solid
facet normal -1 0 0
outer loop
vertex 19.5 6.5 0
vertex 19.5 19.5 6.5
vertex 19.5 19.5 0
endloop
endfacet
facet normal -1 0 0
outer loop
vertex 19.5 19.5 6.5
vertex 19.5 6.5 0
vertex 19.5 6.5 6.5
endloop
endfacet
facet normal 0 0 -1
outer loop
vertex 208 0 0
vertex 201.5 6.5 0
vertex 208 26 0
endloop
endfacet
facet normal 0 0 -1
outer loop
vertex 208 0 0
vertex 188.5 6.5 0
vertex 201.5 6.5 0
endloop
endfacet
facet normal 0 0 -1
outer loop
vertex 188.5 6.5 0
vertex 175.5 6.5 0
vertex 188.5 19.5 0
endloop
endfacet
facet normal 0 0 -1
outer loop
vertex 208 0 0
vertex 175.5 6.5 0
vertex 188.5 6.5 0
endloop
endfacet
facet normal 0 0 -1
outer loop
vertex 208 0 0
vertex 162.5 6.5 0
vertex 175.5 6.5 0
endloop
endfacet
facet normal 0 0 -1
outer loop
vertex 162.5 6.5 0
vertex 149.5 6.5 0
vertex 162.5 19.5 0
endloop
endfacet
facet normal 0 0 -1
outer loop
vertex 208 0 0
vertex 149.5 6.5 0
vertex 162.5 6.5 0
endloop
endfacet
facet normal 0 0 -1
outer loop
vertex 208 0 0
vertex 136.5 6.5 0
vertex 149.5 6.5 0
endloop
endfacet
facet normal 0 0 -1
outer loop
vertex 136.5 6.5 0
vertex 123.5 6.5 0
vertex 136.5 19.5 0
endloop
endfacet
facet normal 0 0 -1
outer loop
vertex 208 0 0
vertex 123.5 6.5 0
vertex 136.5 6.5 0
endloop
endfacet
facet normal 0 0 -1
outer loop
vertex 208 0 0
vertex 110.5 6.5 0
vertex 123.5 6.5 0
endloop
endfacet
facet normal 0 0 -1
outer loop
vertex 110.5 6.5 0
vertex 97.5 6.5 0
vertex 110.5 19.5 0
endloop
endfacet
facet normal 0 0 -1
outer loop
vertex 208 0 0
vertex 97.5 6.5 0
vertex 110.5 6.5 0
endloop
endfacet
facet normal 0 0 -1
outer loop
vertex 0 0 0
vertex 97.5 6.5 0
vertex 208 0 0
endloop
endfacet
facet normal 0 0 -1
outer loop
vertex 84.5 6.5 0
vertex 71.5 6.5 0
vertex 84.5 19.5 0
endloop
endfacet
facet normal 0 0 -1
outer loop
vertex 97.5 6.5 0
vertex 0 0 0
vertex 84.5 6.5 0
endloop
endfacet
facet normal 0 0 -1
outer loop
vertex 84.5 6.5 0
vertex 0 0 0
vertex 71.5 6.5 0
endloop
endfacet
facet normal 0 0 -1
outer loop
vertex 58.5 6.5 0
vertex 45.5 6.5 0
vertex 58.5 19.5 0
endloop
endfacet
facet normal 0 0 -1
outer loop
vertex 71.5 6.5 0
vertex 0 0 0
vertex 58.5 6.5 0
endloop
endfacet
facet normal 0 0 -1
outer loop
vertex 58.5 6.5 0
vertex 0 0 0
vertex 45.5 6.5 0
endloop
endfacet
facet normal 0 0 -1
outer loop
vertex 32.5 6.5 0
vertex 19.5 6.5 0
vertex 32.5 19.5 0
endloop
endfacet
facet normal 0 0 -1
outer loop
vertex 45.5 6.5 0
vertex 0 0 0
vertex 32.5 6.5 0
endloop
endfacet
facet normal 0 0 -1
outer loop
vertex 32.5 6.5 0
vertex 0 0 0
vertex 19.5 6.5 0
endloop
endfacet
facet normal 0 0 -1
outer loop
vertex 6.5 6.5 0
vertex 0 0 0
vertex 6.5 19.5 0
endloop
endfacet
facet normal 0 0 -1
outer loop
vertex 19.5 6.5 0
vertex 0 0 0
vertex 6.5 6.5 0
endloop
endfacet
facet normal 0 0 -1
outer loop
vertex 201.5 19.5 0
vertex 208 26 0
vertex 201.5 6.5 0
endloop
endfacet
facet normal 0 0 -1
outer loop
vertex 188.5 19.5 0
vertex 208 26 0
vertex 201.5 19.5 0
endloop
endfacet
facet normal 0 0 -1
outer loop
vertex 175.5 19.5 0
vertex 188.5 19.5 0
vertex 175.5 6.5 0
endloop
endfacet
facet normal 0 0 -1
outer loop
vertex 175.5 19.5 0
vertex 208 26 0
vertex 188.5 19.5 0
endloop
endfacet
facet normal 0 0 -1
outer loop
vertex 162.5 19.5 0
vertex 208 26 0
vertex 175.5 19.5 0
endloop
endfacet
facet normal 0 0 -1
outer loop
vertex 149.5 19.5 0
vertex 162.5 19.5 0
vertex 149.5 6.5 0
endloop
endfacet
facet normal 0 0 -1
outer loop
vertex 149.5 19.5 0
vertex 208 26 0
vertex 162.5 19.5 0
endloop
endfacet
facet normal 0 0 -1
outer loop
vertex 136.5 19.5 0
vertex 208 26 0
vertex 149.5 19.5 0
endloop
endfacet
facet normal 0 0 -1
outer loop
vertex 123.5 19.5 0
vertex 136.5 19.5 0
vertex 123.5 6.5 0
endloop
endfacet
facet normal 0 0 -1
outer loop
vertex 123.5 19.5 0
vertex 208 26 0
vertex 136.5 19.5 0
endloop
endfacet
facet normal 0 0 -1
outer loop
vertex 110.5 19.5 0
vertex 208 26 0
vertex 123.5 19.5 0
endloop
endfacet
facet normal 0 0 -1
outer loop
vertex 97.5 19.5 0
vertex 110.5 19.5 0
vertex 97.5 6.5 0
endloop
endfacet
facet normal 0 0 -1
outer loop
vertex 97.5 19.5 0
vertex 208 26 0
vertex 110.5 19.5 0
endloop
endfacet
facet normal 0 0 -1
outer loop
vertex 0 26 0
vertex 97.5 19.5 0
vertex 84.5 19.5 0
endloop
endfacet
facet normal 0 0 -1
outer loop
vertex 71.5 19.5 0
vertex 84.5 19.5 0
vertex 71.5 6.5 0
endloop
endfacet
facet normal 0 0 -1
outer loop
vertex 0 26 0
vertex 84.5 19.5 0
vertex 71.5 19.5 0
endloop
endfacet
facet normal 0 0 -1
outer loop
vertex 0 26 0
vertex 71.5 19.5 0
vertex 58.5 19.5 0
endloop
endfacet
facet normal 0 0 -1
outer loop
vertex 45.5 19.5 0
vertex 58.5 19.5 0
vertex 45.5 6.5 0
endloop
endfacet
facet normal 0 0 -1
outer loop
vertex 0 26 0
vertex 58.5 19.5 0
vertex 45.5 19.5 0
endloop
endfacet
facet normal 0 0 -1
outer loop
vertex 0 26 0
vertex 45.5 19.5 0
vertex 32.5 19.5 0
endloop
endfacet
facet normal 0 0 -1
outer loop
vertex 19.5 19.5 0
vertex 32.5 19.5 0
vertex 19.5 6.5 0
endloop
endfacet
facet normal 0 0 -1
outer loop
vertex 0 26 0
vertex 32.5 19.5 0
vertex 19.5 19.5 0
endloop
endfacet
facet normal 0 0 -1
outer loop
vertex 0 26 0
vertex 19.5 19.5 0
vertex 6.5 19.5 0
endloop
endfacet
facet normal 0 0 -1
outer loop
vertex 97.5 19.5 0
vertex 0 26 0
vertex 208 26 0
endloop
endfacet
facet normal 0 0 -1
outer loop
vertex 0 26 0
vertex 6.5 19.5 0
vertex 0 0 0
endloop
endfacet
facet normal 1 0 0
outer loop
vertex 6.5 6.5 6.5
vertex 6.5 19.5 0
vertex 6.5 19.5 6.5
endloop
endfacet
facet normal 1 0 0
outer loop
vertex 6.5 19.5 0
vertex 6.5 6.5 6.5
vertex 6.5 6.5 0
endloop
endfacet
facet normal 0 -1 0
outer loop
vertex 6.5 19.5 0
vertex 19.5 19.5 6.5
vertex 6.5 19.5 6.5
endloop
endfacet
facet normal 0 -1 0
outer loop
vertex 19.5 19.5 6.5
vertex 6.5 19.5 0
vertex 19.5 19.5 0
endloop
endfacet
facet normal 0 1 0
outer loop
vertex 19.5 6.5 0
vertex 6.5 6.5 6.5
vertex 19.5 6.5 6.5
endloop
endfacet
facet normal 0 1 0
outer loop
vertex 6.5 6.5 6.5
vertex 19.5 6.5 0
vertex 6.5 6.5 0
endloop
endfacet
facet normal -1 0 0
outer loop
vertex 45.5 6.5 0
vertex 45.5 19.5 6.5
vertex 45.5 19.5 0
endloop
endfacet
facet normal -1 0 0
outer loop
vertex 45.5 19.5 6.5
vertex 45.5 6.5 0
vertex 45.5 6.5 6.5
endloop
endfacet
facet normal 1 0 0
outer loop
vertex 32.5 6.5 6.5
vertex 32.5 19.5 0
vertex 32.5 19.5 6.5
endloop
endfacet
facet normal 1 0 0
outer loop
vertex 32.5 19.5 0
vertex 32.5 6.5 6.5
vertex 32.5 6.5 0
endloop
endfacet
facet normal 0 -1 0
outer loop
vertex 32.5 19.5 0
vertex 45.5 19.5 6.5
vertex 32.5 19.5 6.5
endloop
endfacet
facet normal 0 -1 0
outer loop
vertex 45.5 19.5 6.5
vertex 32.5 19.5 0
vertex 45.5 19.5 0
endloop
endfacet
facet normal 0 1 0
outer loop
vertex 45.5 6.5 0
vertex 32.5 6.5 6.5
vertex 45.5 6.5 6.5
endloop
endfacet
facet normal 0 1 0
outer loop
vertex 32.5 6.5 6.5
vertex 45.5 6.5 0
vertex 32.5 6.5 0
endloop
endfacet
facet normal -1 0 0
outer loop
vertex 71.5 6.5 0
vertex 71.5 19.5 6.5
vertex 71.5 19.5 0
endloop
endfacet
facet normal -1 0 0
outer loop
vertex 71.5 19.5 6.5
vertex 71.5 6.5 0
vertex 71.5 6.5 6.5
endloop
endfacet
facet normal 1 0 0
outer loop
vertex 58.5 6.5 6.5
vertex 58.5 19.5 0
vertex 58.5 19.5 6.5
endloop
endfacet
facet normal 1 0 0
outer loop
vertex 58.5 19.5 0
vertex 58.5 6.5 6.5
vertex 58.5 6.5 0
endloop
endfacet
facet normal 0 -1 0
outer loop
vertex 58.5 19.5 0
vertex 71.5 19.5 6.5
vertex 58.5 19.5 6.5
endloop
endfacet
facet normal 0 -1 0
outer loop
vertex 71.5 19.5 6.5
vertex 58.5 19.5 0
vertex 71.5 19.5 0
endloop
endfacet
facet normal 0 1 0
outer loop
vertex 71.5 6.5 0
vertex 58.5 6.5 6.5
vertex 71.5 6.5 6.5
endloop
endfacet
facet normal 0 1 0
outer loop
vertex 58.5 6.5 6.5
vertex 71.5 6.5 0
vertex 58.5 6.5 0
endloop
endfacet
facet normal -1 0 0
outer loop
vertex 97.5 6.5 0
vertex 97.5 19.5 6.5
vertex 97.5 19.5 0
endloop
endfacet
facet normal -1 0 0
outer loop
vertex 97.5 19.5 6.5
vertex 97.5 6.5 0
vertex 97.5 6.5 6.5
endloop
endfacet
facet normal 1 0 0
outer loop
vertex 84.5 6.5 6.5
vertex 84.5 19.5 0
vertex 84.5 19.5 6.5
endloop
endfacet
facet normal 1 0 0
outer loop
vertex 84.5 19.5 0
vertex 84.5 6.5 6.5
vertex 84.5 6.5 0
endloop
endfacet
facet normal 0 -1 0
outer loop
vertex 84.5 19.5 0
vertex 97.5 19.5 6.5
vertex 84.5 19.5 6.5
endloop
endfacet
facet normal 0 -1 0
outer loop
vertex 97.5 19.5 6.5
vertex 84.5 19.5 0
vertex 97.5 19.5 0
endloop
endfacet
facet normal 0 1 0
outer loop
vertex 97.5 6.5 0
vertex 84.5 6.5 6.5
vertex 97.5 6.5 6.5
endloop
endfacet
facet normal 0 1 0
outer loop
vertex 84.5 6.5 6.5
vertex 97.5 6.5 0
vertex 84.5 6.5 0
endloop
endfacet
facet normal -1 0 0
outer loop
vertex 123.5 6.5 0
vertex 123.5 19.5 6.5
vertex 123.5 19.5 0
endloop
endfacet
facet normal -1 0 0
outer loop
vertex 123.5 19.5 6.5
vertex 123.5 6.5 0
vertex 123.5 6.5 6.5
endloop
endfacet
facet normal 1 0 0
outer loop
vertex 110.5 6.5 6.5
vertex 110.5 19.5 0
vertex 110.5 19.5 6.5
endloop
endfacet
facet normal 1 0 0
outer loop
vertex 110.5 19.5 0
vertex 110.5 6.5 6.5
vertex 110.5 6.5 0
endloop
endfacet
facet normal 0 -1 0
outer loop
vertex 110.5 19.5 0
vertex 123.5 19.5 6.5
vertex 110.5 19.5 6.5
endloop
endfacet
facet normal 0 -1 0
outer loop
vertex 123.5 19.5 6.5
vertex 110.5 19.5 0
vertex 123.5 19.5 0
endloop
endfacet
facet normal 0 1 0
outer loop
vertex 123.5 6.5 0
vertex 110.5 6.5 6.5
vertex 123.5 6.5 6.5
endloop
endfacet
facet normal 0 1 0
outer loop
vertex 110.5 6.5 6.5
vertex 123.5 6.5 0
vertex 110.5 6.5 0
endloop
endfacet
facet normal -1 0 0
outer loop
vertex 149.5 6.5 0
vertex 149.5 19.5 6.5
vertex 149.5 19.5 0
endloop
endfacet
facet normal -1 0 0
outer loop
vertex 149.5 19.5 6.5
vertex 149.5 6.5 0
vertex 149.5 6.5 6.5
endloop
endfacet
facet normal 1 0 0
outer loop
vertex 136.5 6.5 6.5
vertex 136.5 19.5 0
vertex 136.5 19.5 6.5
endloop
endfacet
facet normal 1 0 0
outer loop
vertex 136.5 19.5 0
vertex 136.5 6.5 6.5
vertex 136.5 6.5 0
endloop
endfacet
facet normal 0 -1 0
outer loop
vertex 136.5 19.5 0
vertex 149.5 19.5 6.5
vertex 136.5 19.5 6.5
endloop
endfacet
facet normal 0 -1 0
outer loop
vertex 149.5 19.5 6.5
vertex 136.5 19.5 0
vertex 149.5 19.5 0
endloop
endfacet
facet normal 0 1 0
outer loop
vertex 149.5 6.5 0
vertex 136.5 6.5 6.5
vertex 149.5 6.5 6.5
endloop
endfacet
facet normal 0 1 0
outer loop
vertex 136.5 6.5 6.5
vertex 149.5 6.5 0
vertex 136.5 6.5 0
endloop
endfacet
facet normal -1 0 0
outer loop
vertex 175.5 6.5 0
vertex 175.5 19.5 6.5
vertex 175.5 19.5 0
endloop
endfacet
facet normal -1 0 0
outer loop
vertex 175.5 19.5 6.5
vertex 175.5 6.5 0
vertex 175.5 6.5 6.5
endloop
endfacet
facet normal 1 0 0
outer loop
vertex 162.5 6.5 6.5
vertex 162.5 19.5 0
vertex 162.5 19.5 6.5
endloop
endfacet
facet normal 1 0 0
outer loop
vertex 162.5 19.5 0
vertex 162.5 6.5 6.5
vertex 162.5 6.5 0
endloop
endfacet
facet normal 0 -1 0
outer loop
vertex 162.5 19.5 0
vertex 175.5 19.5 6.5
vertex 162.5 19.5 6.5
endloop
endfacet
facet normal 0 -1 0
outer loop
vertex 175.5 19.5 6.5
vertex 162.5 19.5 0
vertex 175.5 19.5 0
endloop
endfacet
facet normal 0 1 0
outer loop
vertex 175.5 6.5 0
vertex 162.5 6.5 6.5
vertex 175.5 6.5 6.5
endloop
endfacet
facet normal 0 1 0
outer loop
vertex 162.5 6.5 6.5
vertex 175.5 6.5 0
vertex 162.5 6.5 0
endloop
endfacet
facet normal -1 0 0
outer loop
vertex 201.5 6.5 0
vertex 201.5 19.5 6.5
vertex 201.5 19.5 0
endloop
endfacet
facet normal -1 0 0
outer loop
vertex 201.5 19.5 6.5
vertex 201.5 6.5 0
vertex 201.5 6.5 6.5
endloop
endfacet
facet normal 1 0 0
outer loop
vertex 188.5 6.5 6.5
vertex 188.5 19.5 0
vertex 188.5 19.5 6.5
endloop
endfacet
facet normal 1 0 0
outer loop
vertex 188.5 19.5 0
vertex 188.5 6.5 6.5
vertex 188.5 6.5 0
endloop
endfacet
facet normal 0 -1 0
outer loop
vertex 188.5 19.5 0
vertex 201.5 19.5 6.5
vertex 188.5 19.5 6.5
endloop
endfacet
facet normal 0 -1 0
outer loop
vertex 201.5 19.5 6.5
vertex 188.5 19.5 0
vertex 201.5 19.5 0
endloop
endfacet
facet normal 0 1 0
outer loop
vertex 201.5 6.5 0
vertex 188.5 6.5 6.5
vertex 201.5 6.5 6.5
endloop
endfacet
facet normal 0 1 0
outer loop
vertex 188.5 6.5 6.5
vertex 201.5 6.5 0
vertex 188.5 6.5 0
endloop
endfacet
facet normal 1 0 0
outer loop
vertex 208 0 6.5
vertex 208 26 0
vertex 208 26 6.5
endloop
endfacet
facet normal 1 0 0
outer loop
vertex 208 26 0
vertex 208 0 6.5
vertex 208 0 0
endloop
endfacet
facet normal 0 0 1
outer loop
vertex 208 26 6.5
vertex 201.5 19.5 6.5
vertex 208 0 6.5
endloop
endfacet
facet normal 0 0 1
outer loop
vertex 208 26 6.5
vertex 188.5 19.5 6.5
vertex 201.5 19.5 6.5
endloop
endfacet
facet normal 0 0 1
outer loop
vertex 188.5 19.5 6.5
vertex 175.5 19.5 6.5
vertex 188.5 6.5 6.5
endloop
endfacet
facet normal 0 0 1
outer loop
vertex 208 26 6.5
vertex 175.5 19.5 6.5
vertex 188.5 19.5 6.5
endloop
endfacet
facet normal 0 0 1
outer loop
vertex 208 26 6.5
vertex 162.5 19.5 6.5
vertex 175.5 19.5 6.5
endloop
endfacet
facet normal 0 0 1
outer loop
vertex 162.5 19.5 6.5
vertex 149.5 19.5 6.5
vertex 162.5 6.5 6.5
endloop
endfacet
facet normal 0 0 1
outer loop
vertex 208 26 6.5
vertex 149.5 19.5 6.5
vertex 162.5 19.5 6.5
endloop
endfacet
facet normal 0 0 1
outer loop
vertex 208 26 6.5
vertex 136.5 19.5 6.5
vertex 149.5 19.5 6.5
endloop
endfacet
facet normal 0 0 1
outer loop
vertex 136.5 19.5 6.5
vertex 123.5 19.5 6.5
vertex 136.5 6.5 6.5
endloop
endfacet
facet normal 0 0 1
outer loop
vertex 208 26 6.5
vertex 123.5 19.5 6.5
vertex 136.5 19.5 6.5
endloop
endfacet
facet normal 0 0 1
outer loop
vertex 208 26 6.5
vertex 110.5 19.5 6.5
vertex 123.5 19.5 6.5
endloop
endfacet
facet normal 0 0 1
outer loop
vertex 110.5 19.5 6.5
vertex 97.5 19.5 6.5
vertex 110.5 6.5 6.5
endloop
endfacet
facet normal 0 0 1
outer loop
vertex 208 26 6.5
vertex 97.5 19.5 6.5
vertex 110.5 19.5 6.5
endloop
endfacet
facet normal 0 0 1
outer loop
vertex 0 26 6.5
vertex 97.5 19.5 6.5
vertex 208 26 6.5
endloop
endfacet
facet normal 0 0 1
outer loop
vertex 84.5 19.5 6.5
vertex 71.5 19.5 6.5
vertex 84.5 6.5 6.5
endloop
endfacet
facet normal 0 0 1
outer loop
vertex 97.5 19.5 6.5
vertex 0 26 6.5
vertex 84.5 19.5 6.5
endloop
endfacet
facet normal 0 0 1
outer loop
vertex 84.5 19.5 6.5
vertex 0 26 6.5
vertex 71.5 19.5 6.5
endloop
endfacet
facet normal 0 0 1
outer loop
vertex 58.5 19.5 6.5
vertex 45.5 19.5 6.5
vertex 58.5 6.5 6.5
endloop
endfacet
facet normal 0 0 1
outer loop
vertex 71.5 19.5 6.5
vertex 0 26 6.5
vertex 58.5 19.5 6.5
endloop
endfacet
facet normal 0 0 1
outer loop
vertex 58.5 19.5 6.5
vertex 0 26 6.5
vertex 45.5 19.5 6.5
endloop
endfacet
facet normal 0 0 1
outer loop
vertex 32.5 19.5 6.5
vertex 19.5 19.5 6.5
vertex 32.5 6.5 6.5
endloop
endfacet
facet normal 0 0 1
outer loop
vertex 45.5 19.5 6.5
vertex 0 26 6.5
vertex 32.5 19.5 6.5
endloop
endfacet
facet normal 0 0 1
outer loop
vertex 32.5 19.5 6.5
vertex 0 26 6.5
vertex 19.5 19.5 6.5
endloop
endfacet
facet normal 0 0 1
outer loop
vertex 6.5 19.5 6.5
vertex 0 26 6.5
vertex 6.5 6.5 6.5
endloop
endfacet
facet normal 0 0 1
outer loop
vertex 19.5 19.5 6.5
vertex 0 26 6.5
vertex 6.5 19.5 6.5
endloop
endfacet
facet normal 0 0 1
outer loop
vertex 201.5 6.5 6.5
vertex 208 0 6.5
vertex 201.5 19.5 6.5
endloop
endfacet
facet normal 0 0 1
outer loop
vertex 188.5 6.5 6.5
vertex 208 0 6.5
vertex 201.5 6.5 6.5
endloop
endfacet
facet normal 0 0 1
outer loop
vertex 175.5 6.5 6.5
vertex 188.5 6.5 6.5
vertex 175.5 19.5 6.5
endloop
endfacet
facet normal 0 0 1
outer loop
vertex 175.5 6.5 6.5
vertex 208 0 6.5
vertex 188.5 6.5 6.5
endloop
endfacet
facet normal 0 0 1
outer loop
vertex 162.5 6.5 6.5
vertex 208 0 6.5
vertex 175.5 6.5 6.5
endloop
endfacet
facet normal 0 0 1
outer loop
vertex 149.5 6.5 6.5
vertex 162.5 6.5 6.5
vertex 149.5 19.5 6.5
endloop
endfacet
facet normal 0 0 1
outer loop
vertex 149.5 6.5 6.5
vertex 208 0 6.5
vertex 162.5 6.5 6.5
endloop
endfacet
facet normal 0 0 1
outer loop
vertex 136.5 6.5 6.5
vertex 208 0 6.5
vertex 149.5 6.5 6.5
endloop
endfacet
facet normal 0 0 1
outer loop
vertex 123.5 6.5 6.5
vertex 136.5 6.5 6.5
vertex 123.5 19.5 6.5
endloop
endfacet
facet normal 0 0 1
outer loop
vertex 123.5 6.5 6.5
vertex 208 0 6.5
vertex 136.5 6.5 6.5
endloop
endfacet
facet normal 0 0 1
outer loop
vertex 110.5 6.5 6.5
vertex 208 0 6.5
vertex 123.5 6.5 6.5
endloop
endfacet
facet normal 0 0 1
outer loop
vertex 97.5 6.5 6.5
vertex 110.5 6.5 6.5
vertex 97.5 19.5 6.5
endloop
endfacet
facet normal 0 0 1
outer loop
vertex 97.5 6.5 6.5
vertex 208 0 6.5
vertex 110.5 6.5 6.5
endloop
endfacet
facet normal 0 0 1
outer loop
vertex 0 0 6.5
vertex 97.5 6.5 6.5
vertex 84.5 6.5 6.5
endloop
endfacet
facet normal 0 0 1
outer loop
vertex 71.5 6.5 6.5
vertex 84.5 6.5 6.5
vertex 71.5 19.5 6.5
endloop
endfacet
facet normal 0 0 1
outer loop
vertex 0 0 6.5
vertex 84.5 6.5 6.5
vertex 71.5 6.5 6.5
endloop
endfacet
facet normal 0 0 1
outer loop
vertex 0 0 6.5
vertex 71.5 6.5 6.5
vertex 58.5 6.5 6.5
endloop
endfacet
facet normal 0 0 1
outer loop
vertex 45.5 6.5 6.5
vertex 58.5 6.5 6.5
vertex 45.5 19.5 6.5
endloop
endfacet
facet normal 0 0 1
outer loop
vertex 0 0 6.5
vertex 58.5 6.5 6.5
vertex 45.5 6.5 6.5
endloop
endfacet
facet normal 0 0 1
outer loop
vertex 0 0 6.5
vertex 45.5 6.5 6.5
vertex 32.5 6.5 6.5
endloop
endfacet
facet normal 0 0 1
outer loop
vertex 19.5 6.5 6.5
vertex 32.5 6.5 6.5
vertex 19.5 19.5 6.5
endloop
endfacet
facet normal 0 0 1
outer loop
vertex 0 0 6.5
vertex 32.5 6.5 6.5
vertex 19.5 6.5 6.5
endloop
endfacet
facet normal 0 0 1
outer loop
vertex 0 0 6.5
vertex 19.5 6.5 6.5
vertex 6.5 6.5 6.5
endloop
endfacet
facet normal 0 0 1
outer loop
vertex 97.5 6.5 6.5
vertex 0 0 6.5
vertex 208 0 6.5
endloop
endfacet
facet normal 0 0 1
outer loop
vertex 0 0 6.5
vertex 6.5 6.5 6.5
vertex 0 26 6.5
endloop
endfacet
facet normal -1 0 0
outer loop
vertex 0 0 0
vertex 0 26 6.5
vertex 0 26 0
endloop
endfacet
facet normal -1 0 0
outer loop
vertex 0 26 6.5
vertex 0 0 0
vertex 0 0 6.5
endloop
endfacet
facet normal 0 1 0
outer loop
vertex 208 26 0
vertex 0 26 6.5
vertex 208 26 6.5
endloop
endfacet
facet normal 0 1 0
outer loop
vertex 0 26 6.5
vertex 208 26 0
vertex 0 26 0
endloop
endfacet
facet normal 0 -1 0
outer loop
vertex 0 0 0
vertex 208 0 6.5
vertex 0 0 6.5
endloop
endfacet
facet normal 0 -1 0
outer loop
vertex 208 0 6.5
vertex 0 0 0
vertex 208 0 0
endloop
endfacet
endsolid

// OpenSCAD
// magnets for usb holder

X=13;

module main() {
    N=8;
    x1=(X*2)*(N);
    y1=X*2;
    z1=X*1/2;
    difference() {
        cube([x1,y1,z1]);
        for (i=[0:N-1]) {
            translate([y1*1/4+(X*2)*i,y1*1/4,0]) #cube([X,X,X]);
        }
    }
    
    
}

main();
